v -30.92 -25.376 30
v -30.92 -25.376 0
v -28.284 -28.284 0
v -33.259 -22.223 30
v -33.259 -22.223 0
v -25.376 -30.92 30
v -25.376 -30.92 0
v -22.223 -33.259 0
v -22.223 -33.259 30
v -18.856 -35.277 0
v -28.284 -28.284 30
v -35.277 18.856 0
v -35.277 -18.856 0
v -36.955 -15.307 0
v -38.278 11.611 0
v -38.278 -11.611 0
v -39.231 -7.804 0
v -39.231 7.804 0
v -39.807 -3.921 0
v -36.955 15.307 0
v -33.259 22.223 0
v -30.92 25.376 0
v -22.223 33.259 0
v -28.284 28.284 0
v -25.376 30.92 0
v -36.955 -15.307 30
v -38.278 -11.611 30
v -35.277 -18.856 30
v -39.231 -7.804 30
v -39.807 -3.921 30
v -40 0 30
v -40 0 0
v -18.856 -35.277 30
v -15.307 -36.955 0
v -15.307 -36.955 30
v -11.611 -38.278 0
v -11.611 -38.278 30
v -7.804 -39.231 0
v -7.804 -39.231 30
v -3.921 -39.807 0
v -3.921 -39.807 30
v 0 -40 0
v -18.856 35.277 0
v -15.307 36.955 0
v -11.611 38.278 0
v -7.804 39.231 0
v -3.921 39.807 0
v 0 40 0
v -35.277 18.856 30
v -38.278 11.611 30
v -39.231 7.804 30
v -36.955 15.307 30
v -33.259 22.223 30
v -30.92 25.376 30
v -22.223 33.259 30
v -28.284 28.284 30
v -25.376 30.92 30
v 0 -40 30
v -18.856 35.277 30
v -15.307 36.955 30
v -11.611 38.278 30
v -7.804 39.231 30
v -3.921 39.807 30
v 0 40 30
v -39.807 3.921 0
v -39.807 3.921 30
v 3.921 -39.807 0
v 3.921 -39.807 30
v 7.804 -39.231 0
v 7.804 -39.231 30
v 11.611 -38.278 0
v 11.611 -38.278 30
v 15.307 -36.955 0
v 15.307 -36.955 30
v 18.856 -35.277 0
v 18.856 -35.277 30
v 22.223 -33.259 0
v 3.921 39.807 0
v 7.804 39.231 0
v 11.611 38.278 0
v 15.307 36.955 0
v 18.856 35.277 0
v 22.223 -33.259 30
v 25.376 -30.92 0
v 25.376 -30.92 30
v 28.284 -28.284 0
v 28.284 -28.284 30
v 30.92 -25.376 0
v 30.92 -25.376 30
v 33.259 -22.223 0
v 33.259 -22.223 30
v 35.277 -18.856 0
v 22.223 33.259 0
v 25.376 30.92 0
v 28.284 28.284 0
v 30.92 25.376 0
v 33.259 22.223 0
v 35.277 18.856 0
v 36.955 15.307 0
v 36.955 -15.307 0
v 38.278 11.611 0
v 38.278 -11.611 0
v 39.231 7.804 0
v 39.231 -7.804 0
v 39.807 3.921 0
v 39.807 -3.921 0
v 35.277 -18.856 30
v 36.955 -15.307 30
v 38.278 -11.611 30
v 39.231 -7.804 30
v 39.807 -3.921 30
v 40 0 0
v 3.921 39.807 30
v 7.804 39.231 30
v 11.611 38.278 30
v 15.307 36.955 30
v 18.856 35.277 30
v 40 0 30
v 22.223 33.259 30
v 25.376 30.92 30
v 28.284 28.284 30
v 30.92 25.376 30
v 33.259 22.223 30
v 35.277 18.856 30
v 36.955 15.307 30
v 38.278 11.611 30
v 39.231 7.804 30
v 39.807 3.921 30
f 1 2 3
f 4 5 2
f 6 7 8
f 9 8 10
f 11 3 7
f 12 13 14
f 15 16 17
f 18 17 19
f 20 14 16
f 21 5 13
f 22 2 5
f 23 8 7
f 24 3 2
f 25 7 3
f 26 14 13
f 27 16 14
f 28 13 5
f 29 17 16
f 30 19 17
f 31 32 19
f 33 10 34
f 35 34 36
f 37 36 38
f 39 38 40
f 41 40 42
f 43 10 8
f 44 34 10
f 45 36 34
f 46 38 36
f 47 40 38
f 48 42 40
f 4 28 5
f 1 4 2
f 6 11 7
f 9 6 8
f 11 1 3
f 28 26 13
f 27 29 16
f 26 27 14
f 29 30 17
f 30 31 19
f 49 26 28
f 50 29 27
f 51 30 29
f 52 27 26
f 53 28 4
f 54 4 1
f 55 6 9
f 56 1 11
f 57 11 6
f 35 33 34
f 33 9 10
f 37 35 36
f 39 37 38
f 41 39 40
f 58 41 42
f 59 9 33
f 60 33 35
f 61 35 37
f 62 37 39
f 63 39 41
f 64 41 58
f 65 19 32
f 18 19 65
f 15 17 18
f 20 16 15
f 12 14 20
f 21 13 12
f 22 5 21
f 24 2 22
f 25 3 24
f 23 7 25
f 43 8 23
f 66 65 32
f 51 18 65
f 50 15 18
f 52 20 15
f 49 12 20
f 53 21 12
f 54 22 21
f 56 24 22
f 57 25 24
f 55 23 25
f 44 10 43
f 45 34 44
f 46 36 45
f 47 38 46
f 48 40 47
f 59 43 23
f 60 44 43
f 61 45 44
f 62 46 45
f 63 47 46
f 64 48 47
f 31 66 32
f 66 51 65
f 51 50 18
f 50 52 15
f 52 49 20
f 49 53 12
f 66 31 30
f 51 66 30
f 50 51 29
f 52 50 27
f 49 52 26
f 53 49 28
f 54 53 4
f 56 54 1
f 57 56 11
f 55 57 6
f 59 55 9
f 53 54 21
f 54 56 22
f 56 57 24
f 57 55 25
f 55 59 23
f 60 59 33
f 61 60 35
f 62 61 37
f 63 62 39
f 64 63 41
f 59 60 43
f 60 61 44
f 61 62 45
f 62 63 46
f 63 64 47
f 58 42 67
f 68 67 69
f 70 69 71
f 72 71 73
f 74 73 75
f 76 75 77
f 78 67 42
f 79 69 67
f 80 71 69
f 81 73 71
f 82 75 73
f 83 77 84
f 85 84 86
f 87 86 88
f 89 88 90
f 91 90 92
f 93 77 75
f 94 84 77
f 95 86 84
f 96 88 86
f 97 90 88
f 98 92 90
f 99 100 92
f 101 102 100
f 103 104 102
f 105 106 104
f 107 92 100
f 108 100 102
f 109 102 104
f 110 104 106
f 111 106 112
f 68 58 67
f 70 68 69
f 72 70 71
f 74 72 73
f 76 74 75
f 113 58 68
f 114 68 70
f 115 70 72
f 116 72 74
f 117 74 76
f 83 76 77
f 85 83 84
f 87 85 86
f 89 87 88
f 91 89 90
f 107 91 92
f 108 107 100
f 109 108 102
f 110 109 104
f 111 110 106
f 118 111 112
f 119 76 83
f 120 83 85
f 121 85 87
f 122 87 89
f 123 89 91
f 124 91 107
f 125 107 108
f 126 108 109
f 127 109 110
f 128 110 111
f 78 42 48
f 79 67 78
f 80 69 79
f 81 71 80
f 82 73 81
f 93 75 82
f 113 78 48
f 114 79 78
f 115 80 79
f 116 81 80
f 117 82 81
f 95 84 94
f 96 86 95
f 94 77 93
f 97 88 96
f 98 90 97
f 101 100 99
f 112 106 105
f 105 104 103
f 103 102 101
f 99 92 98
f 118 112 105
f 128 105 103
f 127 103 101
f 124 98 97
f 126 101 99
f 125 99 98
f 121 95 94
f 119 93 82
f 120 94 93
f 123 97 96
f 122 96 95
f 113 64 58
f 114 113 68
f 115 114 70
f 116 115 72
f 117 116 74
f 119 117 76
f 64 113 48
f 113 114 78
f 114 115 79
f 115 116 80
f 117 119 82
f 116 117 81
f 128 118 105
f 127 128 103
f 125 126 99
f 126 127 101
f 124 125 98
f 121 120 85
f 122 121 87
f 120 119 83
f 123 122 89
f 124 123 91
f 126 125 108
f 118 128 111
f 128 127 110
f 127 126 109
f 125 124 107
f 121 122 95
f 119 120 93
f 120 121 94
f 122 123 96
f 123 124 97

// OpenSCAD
// Round black timer, 80 × 30 mm
// External body envelope from the OOMP timer record. The holder has clearance around both faces and the rim.
// Units: mm
$fn = 64;
union() {
    translate([0, 0, 0]) rotate([0, 0, 0])
        cylinder(h=30, r1=40.0, r2=40.0, $fn=64);
}
